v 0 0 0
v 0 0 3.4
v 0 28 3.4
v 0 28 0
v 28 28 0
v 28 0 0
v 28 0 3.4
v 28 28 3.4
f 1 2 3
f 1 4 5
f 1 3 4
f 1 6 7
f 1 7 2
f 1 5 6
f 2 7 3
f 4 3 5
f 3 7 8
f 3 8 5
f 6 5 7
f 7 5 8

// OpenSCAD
/* Warning, this is a very basic generator with a lot of approximation 
input data : [MQFP, ZBX, 28x28x3.4mm, 256, , A, C04-00133A]
generated by com.zoubworld.electronics.cad.model3d.Basic
Date : Sun Feb 15 10:50:48 CET 2026
*/

//body
color("black")
translate([0,0,0])
cube([28.0,28.0,3.4], center=false);
